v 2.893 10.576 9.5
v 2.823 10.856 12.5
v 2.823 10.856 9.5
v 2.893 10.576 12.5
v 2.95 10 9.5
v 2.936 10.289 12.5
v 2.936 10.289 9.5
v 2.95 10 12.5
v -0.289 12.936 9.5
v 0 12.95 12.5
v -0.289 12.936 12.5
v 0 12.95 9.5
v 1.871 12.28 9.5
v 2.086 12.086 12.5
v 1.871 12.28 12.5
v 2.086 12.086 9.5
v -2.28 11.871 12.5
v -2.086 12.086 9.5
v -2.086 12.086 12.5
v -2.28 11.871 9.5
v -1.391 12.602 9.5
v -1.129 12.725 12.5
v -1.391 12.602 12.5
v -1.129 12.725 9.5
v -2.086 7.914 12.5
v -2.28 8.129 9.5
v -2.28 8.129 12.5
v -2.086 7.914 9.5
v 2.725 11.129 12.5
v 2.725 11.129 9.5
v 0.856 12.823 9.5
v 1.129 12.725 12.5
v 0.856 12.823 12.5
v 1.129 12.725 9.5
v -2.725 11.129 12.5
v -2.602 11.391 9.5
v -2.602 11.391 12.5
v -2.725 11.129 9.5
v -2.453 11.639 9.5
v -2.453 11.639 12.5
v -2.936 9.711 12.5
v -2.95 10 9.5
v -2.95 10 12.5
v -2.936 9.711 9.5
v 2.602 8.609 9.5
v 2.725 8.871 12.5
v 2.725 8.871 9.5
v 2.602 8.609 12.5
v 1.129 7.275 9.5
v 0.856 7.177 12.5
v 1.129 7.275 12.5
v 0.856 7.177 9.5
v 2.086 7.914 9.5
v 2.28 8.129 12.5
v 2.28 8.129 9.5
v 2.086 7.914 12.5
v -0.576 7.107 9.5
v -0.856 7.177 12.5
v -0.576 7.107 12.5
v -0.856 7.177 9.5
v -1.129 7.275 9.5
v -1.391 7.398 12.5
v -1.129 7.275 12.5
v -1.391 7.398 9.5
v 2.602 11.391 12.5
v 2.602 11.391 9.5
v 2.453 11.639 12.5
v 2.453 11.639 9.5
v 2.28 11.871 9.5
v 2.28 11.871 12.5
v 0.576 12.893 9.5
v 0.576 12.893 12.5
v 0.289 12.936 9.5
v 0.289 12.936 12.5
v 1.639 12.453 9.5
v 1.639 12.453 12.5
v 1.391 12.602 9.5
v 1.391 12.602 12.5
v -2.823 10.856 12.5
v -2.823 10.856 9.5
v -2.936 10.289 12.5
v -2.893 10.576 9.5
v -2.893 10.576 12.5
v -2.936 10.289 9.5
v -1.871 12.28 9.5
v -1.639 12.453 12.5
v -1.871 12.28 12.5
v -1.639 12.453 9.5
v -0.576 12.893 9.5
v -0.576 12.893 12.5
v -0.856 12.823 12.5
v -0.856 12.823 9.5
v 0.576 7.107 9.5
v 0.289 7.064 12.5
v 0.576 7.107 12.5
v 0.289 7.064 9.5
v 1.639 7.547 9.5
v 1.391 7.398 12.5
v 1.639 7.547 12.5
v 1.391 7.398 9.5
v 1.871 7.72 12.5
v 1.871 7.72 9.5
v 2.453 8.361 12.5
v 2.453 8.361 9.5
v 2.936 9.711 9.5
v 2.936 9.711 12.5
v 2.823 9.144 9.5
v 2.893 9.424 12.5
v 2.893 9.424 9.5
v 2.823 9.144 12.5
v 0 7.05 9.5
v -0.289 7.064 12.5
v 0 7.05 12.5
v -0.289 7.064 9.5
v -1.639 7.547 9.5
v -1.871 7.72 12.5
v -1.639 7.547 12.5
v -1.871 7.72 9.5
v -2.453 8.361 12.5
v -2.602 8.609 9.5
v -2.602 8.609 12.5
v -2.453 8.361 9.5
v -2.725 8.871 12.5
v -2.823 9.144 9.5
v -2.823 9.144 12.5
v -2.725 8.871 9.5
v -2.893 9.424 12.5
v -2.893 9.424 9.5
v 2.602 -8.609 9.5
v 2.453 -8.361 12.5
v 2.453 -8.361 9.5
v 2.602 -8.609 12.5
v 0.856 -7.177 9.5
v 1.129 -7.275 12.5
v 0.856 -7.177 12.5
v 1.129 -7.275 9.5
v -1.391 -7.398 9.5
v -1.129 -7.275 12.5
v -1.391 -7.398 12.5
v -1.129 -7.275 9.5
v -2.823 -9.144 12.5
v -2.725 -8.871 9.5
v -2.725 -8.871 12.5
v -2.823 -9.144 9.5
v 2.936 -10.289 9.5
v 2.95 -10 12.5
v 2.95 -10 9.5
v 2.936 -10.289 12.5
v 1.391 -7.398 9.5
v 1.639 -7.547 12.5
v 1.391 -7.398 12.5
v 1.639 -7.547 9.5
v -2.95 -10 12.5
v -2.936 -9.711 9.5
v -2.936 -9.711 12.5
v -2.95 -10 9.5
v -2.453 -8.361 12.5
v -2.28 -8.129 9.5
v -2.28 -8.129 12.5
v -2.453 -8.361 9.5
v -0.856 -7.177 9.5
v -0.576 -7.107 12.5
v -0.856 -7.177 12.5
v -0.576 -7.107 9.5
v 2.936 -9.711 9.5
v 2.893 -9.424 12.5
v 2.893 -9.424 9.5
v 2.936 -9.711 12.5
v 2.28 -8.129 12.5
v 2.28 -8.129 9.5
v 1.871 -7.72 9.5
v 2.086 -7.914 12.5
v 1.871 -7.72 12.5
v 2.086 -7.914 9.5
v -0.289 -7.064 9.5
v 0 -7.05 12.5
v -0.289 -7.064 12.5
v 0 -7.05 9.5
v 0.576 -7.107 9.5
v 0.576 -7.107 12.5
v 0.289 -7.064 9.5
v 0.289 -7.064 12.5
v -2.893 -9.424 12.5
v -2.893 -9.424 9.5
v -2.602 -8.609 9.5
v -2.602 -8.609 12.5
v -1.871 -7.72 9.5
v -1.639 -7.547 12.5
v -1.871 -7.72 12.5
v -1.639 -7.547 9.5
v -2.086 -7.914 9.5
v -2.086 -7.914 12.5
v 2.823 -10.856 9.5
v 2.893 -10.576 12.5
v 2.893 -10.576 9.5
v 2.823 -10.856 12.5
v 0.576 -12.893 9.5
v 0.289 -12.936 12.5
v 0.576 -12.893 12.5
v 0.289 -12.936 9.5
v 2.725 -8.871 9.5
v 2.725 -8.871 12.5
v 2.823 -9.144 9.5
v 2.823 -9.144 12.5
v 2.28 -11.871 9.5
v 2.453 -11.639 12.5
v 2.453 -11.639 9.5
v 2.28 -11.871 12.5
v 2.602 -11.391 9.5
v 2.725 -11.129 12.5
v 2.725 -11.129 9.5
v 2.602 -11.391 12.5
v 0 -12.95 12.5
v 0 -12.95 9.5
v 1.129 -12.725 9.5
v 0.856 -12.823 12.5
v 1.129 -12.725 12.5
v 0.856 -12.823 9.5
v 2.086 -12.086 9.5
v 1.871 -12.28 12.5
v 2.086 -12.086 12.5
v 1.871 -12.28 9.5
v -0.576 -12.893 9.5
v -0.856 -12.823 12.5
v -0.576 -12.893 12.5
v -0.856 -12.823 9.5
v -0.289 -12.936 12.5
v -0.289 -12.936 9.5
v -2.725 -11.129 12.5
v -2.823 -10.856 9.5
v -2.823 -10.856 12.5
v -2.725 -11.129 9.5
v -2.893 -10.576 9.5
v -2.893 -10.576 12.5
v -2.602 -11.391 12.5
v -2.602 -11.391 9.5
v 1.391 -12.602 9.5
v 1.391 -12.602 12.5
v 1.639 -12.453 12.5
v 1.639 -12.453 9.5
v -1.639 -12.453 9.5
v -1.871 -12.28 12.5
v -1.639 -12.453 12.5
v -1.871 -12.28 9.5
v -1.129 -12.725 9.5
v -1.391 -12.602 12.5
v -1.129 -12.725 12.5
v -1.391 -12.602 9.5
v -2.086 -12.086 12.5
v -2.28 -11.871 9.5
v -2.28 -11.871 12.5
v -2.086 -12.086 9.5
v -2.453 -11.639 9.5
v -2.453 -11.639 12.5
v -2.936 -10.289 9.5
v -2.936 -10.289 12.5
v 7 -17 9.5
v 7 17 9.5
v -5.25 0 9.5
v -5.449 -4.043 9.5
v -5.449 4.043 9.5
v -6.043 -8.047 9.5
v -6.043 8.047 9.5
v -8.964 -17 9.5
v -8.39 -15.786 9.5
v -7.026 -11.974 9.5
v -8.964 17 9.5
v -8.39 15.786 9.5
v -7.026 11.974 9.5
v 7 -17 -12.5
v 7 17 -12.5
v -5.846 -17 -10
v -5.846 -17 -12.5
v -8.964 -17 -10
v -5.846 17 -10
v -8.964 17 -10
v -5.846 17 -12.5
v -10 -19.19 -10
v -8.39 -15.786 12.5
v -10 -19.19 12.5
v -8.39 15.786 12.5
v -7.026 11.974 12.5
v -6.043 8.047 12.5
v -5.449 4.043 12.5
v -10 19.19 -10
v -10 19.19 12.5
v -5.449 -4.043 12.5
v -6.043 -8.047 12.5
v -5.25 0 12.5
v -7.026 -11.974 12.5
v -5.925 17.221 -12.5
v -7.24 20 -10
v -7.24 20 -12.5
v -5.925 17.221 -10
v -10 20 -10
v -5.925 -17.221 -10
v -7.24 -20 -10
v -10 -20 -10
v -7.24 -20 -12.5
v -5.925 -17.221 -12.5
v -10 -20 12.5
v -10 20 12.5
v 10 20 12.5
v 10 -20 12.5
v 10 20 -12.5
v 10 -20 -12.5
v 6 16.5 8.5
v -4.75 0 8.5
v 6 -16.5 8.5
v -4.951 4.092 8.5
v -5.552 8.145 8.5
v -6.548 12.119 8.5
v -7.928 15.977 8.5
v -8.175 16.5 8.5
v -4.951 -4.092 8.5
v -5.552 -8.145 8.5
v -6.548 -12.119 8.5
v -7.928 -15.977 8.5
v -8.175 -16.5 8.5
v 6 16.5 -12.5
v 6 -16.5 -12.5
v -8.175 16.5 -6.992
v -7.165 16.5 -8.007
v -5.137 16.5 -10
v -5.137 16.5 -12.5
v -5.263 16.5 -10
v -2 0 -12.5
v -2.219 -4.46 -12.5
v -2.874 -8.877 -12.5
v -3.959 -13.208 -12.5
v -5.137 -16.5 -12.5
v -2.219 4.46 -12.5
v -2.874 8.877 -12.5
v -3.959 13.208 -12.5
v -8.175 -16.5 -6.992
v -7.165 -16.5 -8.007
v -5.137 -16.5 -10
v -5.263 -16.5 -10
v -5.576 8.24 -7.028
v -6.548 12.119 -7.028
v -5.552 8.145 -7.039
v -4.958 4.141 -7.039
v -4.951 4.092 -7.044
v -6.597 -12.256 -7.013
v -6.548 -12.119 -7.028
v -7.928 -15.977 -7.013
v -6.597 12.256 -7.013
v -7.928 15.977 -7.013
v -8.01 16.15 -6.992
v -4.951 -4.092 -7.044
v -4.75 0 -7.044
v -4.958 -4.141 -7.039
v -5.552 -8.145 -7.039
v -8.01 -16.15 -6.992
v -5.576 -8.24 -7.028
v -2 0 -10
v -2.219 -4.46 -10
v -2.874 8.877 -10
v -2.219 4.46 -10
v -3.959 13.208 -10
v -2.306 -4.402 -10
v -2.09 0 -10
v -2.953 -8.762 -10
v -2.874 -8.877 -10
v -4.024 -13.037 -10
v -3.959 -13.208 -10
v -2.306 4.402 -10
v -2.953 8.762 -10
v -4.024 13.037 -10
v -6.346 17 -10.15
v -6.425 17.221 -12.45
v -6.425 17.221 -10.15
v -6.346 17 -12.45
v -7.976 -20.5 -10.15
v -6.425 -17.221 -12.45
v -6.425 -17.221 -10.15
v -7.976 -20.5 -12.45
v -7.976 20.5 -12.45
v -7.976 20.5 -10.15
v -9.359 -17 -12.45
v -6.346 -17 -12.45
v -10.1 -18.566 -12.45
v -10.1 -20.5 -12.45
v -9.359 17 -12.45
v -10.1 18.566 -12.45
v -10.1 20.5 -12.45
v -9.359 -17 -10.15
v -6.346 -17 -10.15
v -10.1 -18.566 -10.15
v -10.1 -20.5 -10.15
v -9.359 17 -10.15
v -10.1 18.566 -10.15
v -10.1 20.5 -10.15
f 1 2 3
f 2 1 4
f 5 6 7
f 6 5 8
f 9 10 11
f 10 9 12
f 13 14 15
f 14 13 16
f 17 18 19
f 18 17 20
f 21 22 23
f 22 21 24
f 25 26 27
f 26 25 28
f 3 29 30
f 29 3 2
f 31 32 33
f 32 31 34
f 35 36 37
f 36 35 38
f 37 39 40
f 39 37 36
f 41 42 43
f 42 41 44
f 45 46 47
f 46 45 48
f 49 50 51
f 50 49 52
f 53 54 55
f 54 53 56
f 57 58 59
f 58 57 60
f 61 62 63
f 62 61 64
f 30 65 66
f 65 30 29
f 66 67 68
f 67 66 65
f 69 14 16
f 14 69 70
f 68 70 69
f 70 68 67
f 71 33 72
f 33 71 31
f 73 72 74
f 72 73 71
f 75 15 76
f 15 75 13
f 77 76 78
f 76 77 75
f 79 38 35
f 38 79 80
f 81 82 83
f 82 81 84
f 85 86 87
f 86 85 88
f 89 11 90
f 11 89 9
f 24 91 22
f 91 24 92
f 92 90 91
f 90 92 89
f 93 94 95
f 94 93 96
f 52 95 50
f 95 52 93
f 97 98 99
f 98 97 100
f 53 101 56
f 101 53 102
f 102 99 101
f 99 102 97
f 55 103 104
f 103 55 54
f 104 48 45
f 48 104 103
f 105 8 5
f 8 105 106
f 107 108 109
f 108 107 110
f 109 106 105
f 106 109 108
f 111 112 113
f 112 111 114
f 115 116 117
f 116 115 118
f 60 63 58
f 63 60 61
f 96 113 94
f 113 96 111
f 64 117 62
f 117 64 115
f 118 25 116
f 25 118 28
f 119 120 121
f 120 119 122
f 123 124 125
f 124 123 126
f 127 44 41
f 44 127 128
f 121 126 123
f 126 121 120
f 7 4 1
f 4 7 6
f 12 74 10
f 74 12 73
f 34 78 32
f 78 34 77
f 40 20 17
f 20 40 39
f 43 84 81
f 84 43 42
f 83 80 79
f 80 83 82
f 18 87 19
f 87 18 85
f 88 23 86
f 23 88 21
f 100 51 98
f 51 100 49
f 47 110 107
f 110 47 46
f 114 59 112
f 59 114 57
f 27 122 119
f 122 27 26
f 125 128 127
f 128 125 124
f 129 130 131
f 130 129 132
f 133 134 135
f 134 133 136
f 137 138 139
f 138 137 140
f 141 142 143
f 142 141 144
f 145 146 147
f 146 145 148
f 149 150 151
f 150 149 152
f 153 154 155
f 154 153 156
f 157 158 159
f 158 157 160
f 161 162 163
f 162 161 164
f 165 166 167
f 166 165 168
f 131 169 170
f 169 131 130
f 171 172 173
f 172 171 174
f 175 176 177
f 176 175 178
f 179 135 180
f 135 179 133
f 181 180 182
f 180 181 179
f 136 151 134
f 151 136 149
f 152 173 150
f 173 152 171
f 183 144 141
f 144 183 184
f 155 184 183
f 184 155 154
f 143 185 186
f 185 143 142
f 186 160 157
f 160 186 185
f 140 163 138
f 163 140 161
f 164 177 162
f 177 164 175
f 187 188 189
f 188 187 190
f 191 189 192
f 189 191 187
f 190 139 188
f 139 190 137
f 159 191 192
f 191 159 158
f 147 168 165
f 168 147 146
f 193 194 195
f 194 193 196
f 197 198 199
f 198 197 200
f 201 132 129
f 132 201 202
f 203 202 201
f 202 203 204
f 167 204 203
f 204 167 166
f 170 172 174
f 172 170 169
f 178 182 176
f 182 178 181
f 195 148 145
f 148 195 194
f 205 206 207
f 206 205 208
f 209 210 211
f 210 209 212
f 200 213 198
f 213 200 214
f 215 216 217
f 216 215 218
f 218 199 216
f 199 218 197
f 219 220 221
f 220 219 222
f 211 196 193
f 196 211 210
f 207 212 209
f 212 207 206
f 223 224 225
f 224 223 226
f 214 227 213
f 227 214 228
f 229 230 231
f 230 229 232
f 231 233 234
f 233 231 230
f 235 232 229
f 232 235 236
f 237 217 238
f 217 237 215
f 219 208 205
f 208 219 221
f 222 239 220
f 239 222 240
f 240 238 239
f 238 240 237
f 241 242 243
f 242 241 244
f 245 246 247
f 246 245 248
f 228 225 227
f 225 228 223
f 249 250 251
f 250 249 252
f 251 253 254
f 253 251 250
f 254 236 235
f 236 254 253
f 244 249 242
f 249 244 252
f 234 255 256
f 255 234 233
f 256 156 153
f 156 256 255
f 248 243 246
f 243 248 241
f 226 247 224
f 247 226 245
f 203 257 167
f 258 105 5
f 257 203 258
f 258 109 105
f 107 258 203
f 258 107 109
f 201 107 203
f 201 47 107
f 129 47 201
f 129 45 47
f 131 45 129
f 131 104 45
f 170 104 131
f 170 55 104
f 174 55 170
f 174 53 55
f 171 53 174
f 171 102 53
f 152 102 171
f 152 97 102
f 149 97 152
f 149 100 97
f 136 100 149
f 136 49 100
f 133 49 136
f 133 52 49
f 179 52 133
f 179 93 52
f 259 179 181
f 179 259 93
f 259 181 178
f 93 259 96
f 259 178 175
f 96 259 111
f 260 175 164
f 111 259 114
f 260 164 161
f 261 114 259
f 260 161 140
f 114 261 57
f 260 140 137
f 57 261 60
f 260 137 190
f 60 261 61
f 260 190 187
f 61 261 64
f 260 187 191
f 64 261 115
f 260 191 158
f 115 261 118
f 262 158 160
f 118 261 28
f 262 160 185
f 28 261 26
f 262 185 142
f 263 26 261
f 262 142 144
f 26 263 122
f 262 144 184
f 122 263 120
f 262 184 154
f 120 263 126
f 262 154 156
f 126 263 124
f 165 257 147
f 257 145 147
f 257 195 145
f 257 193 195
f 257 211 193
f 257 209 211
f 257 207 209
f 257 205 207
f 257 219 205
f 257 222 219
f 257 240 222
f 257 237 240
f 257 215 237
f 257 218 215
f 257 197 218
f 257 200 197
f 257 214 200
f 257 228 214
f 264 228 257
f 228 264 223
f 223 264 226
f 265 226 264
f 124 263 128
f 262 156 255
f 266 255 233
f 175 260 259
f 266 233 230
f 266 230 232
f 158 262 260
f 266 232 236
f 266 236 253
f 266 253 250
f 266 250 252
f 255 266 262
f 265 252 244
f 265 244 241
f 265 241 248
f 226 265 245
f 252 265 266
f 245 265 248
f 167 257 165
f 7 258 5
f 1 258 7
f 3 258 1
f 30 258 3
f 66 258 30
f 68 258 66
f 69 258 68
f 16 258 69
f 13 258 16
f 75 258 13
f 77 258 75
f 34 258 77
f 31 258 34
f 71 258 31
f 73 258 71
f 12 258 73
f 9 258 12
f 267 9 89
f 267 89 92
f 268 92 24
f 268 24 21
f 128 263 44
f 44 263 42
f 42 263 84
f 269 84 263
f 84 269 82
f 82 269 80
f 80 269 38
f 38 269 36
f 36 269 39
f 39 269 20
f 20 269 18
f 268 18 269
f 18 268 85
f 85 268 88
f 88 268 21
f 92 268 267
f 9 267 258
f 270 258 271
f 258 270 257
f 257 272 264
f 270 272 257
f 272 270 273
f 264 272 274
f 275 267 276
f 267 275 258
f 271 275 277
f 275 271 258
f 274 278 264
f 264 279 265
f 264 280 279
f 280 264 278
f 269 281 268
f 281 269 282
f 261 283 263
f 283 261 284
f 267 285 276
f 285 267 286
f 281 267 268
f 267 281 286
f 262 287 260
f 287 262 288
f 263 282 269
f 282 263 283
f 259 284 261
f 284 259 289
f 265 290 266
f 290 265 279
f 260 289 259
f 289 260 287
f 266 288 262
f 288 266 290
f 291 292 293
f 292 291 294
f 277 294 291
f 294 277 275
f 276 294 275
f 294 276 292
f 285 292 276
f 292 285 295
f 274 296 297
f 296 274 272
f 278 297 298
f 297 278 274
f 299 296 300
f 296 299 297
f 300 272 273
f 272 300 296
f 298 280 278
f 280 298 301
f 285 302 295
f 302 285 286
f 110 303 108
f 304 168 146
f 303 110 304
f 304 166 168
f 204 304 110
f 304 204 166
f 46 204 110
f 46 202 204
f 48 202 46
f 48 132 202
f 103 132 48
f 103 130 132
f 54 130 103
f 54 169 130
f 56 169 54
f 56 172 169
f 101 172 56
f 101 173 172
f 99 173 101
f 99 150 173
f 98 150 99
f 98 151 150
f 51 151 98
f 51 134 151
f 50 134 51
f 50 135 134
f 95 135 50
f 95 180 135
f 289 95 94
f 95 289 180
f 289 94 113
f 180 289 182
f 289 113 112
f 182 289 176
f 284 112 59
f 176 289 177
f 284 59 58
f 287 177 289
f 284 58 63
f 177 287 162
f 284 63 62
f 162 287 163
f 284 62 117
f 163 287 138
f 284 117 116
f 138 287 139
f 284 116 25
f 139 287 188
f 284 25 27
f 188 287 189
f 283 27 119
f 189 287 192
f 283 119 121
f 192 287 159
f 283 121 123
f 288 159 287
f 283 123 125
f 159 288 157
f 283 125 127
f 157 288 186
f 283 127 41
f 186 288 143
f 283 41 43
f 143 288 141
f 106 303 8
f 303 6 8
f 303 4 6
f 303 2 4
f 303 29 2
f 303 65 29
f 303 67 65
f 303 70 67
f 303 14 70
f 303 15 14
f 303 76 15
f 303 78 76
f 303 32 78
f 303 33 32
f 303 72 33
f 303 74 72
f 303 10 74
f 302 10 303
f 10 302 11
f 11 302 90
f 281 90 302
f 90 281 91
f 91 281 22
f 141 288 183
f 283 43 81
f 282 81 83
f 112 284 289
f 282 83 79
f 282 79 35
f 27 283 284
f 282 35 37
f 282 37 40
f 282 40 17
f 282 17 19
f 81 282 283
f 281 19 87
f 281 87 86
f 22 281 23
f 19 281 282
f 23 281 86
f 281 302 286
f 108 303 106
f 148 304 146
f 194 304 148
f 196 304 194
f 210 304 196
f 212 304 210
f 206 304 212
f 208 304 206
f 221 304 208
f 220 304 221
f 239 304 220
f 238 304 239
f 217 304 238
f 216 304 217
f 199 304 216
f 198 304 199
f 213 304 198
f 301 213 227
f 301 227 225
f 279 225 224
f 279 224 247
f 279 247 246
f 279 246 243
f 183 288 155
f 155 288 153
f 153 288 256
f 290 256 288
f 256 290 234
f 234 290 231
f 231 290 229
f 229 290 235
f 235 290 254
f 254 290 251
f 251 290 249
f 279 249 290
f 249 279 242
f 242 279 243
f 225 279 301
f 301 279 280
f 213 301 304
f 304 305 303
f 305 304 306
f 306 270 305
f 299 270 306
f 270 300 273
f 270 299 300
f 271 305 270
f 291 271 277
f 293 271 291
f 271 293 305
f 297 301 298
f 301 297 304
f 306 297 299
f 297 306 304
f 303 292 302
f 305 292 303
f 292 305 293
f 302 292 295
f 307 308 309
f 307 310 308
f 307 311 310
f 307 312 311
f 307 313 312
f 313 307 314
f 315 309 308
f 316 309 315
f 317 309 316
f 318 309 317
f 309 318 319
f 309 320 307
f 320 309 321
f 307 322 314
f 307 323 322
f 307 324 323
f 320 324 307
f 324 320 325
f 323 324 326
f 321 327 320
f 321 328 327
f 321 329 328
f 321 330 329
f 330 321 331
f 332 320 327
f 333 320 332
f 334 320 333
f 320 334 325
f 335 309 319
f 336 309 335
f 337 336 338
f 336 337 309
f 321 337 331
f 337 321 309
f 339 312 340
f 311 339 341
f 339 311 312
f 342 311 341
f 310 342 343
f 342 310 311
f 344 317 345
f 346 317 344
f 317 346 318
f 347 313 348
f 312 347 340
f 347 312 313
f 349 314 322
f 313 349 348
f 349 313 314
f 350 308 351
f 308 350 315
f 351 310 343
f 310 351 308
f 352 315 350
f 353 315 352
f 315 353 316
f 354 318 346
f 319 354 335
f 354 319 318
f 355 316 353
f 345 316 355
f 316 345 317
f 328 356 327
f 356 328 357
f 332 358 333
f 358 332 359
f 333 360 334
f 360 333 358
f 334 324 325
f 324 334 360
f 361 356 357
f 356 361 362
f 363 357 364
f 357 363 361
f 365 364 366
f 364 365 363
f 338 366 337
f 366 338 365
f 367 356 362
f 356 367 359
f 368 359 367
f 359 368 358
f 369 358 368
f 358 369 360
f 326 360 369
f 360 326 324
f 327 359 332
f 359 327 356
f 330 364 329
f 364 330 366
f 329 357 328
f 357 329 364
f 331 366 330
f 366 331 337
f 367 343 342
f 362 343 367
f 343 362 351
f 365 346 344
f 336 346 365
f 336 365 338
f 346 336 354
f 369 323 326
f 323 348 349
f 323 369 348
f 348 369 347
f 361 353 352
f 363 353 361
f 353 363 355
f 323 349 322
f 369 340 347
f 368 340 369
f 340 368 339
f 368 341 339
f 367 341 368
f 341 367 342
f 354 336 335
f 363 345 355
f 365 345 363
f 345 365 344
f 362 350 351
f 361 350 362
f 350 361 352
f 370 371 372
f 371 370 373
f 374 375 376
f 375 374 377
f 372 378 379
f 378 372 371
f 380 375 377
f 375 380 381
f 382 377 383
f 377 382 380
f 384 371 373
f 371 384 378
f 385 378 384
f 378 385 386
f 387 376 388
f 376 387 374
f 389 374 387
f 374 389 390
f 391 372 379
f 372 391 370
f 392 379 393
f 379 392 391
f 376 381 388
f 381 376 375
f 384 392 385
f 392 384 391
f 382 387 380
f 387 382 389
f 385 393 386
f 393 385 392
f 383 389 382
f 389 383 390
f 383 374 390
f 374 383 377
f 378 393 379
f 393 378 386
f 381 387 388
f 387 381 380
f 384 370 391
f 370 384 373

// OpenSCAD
// file: nut_banan.scad
//nut();

module nut() {
    color("pink")
difference() {
    cylinder(d=12, h=2, center=true, $fn=6);
    cylinder(d=5.5, h=3, center=true, $fn=64);
    }
}
// main file
include <nut_banan.scad>


$fn = 64;
diam_hole = 5.4 + 0.5;

//support();

banan();
mini_support_link();
//mini_support();


module mini_support_link(); { 
difference() {
    translate ([-90/2-3, 0, -11.3])
    ring();
    translate ([-90/2-10.1, 0, 0])
    cube ([90, 90, 90], center = true);
    translate([-1, -20/2-20-0.5, -4])    
    cube ([20, 20,20], center = true);

    mirror([0, 1, 0])
    translate([-1, -20/2-20-0.5, -4])    
    cube ([20, 20,20], center = true);
    
    translate([-20/2-0.5, 0, -4])    
    cube ([20, 40-6, 20], center = true);
    }
}
    

module ring() {
difference () {
cylinder(d = 90, h = 2.3, center = true);
cylinder(d = 90-5.5, h = 5, center = true); 
}
}

module mini_support() {
    translate ([-8.5, 18.5, -11.5])
    rotate ([0, 0, 25])
    cube ([3, 3, 2.5], center=true);
    
    mirror ([0, 1, 0])
    translate ([-8.5, 18.5, -11.5])
    rotate ([0, 0, 25])
    cube ([3, 3, 2.5], center=true);
}
//difference() {
//    banan();
//    translate([0, -40/2, 0])
//    cube([20+1, 40+1, 25+1], center = true);
//}


module support() {
    difference() {
    translate([-2, 0, -2])
    cube([20-3-1, 40-6-1, 25-3-1], center = true);
    translate ([-85/2-4, 0, 0])
    cylinder(d = 80+5/2+1, h = 150, center=true);
   
    translate ([-85/2-5, 0, -15])
    cylinder(d = 90+1, h = 10, center = true);
        
    translate([-47, 0, 15-0.1])
     cylinder (d1=90, d2=0, h=50, center = true);
  }       
}



//translate([0, 0, -25/2-0.5])
//banan();
//
//translate([0,20/2,-5])
//rotate([0,0,90])
//nut();
//
//translate([0,-20/2,-5])
//rotate([0,0,90])
//nut();
//color("red")
//translate([-3, 0, 0])
//cube([20,40-6,25-6], center = true);

module banan() {
    difference() {
        base();
        holes_banan();
    }
    color("red")
    support();
}
    
//difference() {    
//color ("red")
//support();
//translate([-47, 0, 15-0.1])
//cylinder (d1=90, d2=0, h=50, center = true);
//}
//    

module base() {
    cube([20, 40, 25], center = true);
}


module holes_banan() {
    translate([0, 20/2, 0])
    cylinder(d=diam_hole, h = 50, center = true);

    translate([0, -20/2, 0])
    cylinder(d=diam_hole, h = 50, center = true);
    
    translate([-3, 0, -3])
    cube([20,40-6,25], center = true);
    
    translate ([-85/2-4, 0, 0])
    cylinder(d = 80 + 5/2, h = 150, center=true);
    
    translate ([-85/2-5, 0, -15])
    cylinder(d = 90, h = 10, center = true);

}
